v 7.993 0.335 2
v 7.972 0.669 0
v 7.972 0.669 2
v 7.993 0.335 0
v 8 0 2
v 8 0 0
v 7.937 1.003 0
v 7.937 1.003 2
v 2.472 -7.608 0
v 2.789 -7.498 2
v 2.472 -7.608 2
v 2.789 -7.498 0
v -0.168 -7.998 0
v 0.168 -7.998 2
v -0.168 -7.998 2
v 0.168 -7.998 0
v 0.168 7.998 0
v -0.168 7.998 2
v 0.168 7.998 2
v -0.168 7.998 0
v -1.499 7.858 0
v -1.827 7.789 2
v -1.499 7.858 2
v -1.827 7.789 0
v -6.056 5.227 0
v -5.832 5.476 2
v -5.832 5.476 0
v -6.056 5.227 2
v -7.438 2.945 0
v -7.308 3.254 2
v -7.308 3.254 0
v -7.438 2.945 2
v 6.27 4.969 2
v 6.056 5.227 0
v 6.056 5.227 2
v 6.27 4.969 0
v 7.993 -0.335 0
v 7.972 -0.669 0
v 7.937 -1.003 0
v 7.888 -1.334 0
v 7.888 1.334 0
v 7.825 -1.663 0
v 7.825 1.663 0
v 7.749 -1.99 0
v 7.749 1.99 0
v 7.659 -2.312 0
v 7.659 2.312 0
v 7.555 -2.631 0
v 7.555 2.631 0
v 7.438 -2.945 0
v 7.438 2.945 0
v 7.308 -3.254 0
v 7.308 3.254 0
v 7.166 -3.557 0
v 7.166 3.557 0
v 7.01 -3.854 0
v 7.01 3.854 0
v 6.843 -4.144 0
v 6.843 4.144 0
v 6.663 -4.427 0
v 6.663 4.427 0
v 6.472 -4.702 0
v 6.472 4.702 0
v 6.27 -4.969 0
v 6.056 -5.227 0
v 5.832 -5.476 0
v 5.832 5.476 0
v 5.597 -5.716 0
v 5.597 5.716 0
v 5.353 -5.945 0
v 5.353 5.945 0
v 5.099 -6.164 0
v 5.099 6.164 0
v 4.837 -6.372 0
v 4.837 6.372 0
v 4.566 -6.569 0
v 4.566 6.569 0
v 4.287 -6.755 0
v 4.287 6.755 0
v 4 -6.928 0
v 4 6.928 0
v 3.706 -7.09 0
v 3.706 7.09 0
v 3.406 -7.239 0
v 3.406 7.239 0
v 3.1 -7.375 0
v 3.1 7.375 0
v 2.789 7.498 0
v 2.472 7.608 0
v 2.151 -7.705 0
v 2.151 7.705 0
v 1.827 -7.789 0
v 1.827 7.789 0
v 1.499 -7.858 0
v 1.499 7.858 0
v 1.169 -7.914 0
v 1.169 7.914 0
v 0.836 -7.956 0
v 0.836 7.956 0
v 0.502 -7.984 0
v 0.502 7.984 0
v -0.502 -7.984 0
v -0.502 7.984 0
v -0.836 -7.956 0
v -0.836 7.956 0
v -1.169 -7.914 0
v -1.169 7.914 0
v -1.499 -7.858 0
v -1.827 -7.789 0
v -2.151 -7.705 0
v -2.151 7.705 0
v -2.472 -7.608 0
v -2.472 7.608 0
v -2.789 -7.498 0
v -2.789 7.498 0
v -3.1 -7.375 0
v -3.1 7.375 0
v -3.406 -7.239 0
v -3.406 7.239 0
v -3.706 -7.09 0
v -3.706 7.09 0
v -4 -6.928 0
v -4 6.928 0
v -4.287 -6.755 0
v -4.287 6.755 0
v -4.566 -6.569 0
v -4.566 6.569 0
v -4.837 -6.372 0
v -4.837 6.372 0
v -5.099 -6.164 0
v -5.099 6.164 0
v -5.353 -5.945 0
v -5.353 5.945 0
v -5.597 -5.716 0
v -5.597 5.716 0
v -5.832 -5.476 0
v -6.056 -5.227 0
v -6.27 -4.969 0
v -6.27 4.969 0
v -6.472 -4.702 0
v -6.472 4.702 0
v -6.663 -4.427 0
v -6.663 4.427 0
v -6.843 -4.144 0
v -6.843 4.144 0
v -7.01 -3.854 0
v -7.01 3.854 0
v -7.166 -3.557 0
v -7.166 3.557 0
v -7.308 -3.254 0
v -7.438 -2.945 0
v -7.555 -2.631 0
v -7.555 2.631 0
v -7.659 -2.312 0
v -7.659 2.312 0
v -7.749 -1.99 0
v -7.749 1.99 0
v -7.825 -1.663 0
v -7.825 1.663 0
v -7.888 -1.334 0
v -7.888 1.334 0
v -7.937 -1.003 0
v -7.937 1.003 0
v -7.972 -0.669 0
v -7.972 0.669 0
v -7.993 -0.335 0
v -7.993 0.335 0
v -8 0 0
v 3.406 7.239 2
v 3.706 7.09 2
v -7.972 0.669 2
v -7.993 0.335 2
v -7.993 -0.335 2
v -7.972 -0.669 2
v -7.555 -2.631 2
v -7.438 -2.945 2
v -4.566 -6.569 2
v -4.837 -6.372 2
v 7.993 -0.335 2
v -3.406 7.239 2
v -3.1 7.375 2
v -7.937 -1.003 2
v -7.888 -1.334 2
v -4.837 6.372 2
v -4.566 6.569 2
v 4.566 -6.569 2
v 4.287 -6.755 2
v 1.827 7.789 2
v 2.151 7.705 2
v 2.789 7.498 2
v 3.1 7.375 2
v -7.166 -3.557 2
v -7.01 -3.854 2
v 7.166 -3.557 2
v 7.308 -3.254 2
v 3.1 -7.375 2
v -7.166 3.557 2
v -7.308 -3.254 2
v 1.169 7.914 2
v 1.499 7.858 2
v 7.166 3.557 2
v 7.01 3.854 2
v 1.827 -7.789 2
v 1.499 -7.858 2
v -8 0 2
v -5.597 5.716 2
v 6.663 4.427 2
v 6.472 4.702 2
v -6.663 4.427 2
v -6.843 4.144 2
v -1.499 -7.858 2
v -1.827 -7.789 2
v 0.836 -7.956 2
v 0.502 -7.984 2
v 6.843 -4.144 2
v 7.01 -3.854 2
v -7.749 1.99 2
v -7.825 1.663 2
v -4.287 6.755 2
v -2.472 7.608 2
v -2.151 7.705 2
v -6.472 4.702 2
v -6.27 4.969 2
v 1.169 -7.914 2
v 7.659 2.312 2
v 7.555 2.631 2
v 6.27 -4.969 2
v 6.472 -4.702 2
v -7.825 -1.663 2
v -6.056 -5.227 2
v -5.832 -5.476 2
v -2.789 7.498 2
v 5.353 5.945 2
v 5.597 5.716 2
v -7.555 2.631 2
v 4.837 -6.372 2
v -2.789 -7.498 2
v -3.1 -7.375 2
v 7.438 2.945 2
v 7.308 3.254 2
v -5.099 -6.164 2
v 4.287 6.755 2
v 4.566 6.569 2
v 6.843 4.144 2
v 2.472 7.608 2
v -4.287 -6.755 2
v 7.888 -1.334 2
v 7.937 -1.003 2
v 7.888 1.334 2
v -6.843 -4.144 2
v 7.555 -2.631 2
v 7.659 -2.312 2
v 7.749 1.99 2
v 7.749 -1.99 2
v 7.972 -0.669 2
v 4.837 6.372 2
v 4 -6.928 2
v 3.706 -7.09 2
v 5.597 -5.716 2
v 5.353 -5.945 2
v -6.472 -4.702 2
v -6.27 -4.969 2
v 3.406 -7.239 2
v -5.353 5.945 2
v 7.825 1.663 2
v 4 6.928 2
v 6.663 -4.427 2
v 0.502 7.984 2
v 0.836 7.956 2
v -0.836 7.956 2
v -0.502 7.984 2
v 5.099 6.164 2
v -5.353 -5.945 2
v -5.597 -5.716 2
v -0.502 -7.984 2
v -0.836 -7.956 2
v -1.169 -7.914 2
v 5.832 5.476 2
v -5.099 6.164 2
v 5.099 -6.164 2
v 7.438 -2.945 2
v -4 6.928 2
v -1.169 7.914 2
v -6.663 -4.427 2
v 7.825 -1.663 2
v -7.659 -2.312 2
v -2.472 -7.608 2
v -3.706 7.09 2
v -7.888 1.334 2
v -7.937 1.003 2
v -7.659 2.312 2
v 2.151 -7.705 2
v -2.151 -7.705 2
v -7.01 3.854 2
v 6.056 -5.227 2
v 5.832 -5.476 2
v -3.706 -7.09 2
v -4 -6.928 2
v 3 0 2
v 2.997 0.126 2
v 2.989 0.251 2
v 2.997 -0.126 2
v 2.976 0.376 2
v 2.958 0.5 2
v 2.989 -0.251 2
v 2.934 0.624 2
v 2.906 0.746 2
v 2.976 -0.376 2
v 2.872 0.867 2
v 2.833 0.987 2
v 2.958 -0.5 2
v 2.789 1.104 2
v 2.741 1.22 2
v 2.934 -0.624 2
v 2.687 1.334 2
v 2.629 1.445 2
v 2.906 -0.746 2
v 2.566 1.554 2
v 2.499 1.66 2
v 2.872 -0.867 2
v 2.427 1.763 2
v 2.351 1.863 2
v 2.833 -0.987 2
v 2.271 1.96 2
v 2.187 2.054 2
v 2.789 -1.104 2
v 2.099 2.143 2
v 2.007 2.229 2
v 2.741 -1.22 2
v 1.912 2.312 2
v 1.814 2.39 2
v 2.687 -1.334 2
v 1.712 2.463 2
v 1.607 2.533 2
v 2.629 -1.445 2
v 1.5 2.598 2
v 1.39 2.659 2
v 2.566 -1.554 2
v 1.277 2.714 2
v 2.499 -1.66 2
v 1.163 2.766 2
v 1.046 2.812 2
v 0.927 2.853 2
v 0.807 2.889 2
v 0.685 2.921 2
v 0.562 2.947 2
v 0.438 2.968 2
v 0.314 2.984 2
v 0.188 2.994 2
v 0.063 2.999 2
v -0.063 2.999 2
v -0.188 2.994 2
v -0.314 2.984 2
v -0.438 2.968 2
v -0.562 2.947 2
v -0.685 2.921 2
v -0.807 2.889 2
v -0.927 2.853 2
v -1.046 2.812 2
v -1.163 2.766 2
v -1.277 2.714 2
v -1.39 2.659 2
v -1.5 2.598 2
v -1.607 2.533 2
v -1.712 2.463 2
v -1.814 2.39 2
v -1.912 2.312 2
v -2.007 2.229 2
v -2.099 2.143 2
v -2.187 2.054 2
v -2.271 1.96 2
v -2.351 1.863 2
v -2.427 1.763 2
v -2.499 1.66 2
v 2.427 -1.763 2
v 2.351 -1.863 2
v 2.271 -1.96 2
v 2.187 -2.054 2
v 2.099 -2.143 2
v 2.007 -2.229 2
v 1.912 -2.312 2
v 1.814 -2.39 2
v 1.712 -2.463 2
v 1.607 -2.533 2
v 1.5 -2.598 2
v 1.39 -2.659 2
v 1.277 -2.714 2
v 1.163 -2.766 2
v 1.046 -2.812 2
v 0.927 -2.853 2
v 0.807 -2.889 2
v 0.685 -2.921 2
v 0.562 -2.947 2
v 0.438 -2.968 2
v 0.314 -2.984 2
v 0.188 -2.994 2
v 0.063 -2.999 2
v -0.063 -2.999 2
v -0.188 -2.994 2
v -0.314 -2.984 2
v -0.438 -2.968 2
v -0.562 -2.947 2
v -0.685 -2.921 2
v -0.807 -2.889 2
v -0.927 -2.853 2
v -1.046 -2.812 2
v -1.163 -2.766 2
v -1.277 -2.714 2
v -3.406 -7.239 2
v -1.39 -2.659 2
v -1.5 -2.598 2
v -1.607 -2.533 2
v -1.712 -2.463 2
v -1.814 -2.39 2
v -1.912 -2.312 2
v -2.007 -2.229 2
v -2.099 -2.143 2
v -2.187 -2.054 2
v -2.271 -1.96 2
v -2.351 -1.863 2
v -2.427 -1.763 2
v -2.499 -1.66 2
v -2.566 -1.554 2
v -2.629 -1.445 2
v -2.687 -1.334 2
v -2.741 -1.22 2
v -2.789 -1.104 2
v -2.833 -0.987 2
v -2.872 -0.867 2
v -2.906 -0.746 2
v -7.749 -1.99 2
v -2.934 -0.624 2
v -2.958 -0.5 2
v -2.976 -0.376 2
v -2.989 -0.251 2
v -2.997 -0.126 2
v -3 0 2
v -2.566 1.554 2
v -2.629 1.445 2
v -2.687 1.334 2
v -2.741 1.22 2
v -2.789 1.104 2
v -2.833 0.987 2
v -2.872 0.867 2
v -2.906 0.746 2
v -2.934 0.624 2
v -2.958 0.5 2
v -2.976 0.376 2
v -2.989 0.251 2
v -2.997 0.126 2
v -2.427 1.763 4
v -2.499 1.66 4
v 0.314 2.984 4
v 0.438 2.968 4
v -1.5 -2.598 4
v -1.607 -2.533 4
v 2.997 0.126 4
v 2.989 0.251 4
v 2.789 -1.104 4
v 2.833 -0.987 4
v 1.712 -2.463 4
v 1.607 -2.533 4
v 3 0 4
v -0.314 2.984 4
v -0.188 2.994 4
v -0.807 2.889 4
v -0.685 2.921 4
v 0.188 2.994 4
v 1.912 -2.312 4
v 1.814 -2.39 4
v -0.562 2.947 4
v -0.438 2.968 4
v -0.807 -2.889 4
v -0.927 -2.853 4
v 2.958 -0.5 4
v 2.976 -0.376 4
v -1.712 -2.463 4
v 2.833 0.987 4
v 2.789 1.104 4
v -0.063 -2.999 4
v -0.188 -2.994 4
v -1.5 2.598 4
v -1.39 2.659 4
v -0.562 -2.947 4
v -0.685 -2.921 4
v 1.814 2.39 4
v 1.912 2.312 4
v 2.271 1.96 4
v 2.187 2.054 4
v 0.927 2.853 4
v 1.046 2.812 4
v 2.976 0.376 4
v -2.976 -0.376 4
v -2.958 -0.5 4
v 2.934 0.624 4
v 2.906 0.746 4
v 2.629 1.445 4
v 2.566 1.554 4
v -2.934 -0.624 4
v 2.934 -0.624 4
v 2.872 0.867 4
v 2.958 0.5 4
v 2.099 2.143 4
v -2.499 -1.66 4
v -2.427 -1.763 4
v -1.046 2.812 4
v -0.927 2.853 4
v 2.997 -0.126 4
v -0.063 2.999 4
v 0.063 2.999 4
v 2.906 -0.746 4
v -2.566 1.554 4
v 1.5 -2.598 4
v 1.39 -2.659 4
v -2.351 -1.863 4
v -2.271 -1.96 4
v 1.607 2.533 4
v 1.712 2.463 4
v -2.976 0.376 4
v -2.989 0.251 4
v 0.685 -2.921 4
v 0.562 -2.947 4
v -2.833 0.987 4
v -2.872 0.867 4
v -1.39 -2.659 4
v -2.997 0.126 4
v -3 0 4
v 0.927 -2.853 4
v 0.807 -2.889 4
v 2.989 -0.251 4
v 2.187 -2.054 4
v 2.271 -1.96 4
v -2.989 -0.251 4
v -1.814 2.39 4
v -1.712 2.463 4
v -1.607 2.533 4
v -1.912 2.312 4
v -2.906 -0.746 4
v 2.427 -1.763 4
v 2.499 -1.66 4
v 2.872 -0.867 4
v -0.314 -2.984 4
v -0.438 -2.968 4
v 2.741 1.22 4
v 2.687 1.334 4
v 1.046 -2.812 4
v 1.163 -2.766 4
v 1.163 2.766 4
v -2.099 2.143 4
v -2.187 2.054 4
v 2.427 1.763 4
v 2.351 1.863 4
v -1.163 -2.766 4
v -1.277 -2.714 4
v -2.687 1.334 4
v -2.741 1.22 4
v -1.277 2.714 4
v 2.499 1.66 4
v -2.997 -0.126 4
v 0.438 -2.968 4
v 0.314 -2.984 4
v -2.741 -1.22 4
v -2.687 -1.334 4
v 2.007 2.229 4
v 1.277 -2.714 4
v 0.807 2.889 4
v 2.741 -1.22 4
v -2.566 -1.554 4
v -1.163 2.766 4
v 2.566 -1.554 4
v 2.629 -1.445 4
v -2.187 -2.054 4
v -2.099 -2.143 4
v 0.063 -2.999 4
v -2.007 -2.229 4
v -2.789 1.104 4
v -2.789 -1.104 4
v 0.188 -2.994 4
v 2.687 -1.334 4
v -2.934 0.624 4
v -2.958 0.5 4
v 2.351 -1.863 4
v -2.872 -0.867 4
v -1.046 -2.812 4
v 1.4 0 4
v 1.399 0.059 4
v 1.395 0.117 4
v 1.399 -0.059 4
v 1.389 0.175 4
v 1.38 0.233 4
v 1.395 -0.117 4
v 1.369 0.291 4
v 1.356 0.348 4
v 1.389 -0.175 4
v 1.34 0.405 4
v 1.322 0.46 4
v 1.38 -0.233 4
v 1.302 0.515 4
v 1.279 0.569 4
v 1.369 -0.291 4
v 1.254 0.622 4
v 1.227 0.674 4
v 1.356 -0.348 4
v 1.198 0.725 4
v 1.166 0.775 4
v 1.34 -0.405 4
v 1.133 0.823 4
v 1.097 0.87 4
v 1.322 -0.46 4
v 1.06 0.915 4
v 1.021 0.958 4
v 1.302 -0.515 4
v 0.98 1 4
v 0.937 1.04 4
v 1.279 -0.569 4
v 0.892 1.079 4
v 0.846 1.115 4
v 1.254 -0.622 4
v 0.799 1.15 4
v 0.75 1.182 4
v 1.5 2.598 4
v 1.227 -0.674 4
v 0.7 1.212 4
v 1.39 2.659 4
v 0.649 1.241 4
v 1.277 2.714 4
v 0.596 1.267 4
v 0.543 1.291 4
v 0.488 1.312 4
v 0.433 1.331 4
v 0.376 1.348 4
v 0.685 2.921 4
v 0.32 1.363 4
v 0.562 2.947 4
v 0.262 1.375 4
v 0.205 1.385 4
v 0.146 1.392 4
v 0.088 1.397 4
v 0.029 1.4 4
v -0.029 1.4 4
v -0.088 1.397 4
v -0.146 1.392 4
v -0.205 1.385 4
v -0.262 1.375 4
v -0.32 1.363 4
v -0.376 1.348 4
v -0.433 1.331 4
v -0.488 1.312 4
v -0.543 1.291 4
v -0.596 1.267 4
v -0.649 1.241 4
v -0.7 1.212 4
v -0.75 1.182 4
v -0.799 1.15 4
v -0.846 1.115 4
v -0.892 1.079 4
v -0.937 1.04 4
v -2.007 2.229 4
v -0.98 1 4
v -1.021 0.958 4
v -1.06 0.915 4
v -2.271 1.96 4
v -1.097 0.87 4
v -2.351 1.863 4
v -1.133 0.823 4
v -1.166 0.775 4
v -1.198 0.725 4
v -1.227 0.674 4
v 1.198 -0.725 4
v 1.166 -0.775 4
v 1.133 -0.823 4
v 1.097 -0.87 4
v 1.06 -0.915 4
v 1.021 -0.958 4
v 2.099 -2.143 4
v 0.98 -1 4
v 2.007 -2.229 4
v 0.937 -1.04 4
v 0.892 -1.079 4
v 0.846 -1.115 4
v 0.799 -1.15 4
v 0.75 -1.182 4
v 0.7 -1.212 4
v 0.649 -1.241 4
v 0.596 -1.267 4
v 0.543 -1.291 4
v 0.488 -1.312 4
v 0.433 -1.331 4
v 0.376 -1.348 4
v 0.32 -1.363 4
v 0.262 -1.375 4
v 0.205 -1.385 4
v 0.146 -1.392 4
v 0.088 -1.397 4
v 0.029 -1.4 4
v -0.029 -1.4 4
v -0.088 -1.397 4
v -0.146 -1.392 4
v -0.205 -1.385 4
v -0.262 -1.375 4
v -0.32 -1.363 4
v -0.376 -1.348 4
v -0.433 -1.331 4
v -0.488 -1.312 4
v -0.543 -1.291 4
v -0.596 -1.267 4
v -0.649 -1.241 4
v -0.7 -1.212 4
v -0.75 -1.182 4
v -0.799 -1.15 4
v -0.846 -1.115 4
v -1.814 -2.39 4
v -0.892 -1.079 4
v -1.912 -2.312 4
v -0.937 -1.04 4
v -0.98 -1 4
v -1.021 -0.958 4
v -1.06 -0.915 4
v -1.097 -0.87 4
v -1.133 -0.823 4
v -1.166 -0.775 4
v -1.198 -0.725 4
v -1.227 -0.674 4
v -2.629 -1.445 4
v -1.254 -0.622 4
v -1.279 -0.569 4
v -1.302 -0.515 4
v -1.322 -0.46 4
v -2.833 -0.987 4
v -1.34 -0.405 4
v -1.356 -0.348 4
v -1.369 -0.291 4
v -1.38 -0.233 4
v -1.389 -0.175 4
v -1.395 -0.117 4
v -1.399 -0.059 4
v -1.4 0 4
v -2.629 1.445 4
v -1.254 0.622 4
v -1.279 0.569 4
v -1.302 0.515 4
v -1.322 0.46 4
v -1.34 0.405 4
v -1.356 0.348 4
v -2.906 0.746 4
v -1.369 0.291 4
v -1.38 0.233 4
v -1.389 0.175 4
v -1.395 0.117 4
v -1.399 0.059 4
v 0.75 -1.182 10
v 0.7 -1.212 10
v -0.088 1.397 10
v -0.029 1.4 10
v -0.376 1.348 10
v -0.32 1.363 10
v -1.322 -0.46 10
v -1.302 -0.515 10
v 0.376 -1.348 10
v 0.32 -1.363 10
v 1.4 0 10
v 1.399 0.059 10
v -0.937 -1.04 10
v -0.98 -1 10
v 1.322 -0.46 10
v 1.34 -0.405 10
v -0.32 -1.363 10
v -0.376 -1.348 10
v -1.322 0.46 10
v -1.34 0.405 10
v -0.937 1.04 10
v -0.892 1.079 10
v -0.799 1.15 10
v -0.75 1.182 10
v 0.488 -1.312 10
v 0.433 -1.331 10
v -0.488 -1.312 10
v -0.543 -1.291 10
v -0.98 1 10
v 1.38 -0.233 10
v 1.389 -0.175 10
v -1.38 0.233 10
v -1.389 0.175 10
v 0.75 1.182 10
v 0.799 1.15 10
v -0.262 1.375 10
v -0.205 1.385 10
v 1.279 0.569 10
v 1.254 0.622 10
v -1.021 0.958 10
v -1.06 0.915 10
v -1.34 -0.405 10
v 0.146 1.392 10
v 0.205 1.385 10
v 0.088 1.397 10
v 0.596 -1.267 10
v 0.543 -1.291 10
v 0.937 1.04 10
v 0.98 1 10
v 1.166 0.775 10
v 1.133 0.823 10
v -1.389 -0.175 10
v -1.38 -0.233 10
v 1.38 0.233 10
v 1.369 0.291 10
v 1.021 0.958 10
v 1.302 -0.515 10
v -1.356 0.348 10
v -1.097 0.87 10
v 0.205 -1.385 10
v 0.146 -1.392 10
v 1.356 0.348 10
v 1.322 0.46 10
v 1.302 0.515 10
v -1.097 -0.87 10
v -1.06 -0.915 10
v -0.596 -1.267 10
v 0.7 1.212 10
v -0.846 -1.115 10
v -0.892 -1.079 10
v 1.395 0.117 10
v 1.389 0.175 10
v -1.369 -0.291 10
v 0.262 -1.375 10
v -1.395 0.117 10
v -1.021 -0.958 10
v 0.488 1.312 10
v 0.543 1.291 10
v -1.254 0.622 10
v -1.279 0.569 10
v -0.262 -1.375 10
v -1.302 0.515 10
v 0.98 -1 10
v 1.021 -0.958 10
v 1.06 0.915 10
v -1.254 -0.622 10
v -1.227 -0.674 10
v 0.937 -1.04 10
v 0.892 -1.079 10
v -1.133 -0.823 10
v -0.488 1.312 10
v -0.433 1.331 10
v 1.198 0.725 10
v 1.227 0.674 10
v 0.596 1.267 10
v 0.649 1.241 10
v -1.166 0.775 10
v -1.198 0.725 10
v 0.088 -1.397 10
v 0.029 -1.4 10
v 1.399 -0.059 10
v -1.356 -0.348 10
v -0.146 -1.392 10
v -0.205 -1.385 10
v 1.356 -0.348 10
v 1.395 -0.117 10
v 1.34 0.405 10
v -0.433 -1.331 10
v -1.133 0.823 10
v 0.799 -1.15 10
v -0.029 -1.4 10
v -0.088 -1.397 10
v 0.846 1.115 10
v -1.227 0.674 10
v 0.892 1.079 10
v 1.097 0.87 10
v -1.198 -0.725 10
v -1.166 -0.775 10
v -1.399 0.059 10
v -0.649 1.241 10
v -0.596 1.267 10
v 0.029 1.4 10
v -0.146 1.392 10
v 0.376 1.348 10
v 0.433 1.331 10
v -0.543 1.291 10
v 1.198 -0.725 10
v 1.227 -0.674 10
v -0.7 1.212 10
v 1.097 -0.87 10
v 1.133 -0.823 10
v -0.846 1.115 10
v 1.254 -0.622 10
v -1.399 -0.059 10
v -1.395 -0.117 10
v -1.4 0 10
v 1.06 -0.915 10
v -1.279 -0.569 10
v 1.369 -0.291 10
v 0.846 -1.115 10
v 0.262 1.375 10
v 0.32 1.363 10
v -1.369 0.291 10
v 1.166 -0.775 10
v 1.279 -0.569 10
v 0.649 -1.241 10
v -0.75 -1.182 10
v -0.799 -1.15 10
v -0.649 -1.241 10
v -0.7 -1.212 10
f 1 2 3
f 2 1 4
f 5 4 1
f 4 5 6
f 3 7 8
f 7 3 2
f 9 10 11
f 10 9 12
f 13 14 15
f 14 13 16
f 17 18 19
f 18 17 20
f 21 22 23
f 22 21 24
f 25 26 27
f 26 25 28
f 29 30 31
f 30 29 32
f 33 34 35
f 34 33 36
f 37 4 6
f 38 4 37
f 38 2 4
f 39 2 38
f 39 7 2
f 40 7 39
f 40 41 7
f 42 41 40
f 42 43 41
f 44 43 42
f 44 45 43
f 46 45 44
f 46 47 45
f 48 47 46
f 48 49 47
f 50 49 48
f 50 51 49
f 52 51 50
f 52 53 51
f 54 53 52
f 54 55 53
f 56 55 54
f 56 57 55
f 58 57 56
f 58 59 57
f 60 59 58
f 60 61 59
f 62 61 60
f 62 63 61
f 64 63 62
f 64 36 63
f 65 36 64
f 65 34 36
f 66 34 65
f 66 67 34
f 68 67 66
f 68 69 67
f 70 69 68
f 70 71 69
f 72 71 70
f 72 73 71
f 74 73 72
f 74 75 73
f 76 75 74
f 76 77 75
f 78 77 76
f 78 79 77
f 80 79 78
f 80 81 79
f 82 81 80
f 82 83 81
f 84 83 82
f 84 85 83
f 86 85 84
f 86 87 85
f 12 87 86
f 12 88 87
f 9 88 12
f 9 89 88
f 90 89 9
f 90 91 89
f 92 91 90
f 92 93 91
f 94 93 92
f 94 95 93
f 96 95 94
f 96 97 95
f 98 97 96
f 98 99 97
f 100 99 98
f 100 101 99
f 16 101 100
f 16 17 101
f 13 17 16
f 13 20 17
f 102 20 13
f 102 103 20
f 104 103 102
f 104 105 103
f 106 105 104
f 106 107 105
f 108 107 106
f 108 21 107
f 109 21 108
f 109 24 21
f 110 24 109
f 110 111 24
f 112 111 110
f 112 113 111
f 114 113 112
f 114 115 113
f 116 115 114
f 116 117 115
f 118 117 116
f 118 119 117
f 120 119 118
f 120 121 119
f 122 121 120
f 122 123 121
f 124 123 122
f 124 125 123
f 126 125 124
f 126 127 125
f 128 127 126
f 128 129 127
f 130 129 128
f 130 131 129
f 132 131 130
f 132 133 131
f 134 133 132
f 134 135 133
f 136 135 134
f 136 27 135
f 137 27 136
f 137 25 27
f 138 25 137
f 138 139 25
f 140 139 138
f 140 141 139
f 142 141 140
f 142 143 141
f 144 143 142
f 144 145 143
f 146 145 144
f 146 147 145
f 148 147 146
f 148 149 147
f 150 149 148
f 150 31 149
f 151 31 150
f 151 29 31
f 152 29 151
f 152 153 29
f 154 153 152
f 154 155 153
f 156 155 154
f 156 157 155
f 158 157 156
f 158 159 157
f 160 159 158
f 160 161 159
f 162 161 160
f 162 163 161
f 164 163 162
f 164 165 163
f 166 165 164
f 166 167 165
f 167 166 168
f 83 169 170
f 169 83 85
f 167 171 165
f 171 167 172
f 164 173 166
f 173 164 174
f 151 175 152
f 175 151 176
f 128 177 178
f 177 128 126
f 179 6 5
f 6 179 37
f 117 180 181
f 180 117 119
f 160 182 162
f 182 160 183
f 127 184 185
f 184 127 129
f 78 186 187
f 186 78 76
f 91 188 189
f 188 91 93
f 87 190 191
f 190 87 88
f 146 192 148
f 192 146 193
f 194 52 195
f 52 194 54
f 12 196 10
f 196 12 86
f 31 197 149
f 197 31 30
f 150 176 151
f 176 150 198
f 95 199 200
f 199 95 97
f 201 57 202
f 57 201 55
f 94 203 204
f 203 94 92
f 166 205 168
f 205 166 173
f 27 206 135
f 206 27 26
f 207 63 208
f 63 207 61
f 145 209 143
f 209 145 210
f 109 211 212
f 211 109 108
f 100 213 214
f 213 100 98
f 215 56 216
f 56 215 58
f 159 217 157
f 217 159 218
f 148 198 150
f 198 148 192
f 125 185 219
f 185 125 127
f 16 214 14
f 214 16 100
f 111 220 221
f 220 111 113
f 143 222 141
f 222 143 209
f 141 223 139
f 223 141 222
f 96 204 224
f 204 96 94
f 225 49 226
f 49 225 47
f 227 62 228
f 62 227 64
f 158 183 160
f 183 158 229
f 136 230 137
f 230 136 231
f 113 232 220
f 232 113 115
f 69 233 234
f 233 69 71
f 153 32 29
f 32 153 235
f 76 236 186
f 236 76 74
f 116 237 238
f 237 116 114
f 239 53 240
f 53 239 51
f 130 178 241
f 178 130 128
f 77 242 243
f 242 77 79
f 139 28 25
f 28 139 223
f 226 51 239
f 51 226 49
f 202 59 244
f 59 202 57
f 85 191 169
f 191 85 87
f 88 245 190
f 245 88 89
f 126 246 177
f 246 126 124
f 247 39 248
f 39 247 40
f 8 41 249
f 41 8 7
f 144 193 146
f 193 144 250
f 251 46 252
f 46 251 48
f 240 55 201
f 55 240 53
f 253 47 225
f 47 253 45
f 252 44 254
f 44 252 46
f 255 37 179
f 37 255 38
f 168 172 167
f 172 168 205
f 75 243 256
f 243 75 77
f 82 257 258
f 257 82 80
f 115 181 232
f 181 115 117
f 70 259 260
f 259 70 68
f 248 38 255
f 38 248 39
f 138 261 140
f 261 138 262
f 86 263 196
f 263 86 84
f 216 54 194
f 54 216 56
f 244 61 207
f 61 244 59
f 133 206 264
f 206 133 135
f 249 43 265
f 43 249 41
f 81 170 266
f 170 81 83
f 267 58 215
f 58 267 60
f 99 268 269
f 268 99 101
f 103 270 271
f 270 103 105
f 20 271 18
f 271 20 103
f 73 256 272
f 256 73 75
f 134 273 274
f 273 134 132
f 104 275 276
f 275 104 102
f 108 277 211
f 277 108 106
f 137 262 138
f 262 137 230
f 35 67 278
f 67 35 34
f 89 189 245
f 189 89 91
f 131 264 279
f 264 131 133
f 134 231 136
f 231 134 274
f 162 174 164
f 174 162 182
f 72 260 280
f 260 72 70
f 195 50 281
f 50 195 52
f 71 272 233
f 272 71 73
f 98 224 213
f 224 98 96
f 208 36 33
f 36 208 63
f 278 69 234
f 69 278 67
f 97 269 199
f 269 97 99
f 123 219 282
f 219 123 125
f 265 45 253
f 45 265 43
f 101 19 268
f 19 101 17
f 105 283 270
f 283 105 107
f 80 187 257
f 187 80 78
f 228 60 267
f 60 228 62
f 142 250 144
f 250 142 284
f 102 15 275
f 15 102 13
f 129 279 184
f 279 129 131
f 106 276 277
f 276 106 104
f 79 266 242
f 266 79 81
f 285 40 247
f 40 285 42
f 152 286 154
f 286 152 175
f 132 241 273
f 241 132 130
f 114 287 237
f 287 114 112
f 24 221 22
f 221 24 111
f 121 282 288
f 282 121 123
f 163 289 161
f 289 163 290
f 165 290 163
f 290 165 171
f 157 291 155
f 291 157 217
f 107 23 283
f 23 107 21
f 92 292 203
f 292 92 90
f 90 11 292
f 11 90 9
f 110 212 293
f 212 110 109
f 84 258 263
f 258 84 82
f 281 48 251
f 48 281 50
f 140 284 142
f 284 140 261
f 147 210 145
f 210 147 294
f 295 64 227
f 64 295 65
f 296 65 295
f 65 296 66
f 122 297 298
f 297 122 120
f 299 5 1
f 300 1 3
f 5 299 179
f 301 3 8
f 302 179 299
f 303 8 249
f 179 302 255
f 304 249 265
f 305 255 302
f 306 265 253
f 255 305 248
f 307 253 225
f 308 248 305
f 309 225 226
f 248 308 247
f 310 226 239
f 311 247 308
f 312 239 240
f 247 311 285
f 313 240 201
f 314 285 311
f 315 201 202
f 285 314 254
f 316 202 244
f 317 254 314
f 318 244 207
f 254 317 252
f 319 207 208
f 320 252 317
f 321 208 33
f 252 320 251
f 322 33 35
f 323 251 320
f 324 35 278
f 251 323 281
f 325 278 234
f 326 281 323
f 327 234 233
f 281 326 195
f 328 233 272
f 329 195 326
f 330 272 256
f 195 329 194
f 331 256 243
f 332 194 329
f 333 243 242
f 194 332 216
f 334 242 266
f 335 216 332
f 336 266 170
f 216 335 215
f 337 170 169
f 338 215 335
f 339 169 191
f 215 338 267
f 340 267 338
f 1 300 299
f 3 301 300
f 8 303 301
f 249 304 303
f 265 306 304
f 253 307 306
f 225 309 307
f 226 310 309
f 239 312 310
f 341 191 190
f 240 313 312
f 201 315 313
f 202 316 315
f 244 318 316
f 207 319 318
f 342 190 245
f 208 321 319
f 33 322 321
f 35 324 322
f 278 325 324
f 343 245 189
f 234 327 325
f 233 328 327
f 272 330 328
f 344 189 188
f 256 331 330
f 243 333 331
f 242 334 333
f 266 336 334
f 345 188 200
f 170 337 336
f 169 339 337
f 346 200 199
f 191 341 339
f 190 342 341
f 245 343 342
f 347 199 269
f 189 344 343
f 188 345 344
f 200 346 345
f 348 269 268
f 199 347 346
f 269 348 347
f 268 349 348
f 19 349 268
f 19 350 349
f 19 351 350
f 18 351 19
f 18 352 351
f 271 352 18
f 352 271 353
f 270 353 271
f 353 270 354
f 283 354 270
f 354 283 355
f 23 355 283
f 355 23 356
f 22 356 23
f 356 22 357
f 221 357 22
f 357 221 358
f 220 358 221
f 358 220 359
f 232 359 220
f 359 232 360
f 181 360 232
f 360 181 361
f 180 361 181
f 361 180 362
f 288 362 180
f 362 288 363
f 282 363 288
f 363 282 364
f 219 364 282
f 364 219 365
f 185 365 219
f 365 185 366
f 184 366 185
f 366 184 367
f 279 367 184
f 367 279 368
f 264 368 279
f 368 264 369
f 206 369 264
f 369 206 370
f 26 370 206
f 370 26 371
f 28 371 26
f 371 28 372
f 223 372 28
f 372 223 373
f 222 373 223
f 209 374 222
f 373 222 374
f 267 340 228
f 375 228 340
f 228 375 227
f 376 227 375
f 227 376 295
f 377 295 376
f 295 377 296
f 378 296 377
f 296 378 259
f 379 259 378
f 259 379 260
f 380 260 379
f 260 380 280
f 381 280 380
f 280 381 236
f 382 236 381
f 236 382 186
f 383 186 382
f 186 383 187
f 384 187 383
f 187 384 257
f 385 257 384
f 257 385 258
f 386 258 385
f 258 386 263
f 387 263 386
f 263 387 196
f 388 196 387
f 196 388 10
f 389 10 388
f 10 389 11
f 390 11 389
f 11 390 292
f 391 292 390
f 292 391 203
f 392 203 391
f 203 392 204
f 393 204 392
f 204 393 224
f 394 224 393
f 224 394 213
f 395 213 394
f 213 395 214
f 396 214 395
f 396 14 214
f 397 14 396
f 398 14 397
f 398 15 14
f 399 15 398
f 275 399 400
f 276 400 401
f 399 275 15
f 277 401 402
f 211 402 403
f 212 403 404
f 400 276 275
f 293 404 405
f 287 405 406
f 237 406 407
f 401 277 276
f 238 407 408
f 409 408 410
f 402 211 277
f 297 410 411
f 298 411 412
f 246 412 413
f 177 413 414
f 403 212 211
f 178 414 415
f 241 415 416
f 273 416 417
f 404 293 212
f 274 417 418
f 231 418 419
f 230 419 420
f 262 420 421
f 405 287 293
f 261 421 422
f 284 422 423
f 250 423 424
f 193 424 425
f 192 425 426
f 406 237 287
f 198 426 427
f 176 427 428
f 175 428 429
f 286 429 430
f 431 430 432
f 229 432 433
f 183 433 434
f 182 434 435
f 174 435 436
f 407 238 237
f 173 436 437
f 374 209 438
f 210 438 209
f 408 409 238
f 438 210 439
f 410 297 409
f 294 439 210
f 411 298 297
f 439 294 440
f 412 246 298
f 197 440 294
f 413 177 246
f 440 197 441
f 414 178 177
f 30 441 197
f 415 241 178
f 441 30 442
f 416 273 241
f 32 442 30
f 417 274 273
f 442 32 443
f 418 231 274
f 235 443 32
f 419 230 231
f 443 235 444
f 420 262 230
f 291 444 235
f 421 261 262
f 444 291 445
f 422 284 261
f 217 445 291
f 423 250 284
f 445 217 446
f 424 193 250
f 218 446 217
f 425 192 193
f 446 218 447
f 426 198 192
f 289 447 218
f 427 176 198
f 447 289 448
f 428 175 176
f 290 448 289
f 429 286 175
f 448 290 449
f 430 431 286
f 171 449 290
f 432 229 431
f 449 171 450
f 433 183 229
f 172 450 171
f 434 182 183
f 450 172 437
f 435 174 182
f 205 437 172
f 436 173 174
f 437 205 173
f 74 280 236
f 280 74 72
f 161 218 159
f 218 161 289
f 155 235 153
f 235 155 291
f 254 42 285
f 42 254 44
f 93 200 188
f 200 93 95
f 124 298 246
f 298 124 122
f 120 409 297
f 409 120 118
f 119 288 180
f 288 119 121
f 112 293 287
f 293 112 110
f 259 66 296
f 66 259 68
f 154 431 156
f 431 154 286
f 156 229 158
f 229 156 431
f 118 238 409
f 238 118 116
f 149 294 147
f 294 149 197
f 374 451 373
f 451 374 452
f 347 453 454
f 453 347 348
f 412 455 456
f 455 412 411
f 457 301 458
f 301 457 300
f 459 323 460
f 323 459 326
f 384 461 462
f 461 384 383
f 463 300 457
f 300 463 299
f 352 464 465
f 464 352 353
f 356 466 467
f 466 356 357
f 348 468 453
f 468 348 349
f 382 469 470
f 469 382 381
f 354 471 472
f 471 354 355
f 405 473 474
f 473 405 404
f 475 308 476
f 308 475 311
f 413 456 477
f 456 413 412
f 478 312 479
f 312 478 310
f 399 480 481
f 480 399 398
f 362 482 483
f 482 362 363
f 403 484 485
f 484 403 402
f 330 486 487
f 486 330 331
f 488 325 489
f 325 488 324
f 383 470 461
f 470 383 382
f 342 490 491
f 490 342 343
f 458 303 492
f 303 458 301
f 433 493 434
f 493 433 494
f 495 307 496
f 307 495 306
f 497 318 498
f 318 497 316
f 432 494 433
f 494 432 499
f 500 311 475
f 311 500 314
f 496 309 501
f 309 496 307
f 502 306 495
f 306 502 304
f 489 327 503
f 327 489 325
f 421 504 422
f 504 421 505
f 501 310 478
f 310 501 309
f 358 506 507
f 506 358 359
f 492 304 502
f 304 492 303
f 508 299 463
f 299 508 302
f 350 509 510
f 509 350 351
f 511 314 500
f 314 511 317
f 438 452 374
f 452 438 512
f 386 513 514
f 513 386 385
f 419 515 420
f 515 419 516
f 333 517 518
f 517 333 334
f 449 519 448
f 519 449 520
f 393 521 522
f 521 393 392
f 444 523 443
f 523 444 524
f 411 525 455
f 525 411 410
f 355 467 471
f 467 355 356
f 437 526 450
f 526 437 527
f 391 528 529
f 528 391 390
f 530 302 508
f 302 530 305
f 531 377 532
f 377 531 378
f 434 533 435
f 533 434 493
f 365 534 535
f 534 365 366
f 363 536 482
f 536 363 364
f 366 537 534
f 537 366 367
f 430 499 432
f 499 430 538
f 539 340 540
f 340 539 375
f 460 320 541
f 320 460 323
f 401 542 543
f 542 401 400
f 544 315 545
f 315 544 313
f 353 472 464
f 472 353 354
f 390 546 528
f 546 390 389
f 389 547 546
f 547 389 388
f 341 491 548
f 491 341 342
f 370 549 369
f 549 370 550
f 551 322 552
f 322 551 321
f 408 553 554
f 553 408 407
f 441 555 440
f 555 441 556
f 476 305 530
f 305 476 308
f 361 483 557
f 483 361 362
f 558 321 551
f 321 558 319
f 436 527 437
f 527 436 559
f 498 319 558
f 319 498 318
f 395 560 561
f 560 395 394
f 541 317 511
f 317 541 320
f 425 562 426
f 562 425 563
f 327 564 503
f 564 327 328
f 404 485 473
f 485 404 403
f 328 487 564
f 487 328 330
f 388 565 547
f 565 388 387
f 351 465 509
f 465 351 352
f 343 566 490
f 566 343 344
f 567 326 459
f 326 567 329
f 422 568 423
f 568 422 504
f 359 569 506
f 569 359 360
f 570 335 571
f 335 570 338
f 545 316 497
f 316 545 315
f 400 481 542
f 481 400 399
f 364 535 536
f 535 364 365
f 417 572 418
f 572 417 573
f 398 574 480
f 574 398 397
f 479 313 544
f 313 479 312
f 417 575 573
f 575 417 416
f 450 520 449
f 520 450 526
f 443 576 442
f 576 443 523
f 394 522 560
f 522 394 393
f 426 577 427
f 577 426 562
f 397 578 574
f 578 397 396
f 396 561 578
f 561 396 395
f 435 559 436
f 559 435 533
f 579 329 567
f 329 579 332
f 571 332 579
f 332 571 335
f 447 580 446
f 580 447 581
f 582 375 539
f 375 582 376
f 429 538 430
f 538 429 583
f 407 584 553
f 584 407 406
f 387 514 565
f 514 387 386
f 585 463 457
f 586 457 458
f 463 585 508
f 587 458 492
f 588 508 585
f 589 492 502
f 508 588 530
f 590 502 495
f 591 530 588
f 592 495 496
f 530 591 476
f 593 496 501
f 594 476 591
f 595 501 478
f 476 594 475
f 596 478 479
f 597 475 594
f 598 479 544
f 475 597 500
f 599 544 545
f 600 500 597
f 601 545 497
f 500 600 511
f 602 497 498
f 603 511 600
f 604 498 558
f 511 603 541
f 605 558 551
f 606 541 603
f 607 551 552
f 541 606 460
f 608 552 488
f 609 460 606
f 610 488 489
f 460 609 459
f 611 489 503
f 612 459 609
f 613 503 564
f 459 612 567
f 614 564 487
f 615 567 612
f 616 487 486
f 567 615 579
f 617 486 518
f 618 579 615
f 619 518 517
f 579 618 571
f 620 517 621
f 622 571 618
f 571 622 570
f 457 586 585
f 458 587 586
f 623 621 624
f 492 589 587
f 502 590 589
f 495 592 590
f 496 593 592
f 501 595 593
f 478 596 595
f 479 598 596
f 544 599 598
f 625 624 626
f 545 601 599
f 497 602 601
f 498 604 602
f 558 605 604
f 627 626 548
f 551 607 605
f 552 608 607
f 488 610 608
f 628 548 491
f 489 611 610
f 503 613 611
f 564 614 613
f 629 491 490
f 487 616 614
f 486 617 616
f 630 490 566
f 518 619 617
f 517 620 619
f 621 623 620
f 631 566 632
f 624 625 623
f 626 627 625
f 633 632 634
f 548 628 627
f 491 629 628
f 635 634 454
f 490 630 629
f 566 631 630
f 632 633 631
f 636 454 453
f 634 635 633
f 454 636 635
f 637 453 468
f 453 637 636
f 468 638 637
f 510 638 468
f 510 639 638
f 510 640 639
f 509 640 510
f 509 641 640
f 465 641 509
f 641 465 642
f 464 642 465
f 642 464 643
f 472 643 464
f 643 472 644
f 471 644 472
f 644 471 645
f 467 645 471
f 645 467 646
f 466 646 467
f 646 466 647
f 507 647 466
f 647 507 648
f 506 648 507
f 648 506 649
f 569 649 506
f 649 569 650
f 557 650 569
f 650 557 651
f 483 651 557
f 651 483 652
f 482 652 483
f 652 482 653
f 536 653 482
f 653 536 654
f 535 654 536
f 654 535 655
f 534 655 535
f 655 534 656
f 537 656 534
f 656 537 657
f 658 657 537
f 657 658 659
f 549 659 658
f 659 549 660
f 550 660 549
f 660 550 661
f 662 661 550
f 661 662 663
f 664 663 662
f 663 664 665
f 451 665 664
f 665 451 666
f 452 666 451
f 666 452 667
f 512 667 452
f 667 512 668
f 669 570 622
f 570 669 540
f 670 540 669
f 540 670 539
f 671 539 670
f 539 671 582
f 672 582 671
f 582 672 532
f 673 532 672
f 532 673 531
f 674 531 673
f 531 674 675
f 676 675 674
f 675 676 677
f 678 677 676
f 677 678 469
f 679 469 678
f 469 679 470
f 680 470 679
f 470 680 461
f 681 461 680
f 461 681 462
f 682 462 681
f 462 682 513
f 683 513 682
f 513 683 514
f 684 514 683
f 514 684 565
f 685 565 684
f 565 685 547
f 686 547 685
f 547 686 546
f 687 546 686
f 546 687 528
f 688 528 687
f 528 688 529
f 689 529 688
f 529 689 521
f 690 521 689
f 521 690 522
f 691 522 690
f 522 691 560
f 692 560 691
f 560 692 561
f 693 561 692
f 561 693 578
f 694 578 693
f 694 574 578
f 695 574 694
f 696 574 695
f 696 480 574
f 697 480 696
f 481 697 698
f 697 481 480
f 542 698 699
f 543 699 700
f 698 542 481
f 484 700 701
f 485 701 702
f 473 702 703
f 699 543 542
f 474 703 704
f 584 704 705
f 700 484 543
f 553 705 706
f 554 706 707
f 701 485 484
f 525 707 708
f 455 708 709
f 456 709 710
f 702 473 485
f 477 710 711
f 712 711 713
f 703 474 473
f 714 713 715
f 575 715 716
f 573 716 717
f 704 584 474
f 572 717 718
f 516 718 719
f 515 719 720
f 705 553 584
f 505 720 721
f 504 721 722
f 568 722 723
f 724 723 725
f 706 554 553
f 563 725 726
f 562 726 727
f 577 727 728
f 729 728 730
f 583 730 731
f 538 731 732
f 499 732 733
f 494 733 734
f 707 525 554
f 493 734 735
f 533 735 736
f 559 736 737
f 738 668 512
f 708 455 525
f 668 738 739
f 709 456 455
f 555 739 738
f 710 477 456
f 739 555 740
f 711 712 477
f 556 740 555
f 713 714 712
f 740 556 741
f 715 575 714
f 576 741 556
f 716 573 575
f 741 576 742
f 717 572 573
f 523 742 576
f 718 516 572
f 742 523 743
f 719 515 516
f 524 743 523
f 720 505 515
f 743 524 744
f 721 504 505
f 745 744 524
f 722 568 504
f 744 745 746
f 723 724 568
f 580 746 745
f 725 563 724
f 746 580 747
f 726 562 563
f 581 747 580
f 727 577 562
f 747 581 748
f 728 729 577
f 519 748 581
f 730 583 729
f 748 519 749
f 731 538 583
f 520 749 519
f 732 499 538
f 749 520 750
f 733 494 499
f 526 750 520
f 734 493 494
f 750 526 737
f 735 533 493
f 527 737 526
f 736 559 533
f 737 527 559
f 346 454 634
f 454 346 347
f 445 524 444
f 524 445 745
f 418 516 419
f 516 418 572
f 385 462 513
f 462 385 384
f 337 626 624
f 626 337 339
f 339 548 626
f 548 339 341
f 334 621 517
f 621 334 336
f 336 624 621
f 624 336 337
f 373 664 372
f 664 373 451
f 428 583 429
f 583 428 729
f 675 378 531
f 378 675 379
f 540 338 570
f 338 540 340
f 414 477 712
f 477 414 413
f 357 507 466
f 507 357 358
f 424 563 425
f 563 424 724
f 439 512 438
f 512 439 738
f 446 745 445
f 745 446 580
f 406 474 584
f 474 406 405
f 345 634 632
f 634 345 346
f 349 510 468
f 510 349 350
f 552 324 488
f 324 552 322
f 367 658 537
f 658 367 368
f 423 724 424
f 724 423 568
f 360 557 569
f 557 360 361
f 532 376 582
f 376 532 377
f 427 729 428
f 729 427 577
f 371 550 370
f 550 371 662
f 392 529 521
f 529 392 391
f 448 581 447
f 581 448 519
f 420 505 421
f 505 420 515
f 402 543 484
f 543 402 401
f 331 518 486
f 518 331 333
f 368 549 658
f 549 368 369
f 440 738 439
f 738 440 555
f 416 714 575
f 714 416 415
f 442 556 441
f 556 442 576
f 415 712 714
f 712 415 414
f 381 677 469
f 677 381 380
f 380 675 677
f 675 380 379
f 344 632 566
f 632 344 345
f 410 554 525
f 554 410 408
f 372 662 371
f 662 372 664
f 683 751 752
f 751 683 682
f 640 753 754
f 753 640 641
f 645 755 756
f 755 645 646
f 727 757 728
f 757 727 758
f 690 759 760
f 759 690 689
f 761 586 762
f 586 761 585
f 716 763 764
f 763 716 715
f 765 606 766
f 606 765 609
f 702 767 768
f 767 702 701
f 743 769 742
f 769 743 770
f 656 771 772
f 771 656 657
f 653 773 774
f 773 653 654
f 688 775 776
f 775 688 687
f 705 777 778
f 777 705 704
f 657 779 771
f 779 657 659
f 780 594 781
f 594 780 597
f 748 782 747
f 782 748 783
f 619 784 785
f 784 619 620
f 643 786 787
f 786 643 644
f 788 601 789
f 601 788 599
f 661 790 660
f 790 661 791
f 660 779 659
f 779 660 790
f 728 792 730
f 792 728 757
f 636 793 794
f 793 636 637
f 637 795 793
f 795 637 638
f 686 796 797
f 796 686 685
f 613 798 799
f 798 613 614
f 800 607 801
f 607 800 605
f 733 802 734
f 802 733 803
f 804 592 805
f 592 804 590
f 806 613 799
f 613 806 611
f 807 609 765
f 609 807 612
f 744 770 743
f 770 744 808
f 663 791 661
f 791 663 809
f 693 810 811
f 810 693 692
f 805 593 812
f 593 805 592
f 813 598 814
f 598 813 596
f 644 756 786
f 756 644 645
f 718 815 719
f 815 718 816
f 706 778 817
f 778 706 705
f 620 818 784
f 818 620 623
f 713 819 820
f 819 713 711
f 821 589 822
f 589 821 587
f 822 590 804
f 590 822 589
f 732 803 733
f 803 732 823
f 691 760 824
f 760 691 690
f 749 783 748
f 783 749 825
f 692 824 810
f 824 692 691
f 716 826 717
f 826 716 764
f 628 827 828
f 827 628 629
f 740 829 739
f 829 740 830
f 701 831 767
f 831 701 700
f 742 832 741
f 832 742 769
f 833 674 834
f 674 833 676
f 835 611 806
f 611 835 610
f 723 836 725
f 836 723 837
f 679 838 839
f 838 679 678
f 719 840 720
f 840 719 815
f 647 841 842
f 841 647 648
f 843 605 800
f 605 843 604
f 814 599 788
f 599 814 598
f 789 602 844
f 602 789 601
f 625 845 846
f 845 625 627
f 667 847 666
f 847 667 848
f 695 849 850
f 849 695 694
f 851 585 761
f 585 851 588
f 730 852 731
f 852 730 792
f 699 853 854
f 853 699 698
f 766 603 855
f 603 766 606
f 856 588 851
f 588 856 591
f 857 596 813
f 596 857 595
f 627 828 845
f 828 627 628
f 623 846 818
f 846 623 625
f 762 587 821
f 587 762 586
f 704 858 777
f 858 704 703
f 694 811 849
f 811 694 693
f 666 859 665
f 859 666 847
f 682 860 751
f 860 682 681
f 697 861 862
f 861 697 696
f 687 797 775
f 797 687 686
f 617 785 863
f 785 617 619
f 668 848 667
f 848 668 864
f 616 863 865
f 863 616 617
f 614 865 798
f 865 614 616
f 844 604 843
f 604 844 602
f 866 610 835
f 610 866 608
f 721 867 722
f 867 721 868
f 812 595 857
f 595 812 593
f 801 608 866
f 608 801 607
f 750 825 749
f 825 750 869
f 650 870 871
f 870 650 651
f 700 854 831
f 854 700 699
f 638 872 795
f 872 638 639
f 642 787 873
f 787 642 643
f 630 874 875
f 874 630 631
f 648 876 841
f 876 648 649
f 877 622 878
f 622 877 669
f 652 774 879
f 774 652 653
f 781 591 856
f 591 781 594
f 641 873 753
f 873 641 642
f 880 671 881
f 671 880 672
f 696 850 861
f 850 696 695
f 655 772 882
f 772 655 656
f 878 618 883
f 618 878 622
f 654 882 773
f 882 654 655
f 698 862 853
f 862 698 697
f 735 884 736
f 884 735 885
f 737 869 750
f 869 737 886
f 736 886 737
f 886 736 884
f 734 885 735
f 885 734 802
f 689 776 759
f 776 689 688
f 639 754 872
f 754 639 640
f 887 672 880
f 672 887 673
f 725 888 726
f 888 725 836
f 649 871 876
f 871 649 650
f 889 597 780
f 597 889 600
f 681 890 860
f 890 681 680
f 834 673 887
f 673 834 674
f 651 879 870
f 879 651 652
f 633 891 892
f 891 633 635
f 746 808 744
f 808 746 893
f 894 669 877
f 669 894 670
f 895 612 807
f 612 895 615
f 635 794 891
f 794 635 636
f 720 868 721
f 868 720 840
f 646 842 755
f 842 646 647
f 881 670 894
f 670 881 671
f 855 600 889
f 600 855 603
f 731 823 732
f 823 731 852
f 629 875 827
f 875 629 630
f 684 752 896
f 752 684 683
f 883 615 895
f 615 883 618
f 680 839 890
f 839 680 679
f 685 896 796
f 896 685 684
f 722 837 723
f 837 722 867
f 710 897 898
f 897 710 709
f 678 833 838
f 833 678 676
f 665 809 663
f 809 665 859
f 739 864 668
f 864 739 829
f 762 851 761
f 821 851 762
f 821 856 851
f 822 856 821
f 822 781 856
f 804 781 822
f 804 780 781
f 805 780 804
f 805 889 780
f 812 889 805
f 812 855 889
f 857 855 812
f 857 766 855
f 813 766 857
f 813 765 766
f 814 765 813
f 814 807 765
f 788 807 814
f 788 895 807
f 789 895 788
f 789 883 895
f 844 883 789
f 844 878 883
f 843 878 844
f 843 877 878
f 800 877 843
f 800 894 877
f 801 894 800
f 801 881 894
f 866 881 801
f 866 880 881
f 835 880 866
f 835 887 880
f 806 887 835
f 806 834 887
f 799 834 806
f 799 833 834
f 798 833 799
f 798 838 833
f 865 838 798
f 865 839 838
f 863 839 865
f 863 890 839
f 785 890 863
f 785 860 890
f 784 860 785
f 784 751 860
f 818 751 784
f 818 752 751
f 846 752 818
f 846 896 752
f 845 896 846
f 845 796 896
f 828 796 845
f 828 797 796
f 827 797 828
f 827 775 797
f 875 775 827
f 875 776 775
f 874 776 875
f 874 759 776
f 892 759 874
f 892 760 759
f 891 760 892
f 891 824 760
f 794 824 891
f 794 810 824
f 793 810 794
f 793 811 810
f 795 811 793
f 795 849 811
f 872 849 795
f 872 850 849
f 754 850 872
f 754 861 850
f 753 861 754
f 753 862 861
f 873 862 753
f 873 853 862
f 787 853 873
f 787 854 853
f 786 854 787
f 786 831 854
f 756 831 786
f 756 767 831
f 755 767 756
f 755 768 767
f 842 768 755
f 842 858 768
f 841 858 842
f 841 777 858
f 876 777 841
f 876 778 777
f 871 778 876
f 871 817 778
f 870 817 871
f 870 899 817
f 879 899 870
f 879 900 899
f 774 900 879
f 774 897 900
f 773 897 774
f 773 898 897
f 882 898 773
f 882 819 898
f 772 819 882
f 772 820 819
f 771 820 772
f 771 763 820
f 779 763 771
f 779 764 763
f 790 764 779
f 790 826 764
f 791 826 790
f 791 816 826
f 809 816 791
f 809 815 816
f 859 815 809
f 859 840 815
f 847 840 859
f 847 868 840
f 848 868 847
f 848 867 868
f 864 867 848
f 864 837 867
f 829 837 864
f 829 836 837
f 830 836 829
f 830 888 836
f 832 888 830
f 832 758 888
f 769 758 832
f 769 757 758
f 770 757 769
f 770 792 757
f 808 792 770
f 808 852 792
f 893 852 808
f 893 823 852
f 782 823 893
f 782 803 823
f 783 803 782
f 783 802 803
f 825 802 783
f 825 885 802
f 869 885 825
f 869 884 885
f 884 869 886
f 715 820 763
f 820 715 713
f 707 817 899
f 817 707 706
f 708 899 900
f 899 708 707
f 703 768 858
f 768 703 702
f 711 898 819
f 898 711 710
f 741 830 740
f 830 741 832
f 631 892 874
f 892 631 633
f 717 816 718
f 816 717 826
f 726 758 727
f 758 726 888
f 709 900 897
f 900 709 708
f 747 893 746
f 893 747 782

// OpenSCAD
//Arduino UNO 1 hole Stand Off

$fn = 150;

height = 4;
bigDia = 6;
smallDia = 2.8;
topHeight = 6;

//base for glue
baseDia = 16;
baseHeight = 2;

cylinder(baseHeight, d = baseDia);
cylinder(height, d = bigDia);
cylinder(height + topHeight, d = smallDia);
